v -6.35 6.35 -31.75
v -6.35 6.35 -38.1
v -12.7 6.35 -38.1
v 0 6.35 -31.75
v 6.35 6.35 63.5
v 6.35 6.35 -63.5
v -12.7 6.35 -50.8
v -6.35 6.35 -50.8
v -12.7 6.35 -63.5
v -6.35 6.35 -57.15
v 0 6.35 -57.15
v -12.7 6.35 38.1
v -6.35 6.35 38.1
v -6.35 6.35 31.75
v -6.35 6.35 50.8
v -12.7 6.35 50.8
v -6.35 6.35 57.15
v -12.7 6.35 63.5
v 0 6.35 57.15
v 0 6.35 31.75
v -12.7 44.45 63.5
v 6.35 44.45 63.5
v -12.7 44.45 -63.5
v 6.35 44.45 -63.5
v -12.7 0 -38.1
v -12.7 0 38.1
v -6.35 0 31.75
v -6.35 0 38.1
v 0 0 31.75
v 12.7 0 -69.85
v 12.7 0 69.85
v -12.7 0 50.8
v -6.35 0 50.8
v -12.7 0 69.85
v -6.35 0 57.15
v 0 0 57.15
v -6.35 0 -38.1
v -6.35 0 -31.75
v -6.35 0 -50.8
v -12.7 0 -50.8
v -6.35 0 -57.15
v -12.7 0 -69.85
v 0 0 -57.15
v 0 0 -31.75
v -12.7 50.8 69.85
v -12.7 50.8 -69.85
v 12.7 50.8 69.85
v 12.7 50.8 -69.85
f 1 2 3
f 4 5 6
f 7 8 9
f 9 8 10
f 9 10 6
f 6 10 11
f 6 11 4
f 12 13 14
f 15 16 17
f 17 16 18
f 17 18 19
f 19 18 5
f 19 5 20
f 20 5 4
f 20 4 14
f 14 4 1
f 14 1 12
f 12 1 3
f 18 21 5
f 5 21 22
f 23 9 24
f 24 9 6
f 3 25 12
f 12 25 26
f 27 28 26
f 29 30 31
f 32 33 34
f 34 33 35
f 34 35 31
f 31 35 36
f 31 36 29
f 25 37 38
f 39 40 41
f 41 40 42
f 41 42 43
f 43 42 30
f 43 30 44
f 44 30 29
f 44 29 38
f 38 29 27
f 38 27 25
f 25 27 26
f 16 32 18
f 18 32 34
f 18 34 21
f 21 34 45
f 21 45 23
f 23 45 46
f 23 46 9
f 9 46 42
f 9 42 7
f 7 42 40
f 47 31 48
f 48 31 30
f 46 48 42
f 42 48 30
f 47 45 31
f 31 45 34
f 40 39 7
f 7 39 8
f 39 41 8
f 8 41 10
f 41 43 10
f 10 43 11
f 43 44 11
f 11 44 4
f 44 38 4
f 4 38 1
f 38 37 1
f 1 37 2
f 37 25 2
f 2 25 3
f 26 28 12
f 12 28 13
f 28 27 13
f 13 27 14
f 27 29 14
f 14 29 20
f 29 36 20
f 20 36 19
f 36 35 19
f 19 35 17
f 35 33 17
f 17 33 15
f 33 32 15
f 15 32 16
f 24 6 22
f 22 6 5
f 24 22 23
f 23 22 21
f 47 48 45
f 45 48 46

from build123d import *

# Parameters (mm, degrees)
SKETCH1_W           = 25.4
SKETCH1_H           = 139.7
BOSS_EXTRUDE1_DEPTH = 6.35
SKETCH3_W           = 25.4
SKETCH3_H           = 6.35
BOSS_EXTRUDE2_DEPTH = 38.1
BOSS_EXTRUDE3_DEPTH = 6.35
CUT_EXTRUDE2_DEPTH  = 84.521209881
SKETCH8_W           = 12.7
SKETCH8_H           = 139.7
CUT_EXTRUDE3_DEPTH  = 84.521209881
SKETCH9_W           = 6.35
SKETCH9_H           = 127
BOSS_EXTRUDE4_DEPTH = 38.1
SKETCH10_W          = 25.4
SKETCH10_H          = 139.7
BOSS_EXTRUDE5_DEPTH = 6.35


with BuildPart() as part:
    # Sketch1 → Boss-Extrude1 (new body)
    with BuildSketch(Plane(origin=(0, 0, 0), x_dir=(1, 0, 0), z_dir=(0, 1, 0))):
        Rectangle(SKETCH1_W, SKETCH1_H)
    extrude(amount=BOSS_EXTRUDE1_DEPTH)

    # Sketch3 → Boss-Extrude2 (add)
    with BuildSketch(Plane(origin=(0, 6.35, 0), x_dir=(1, 0, 0), z_dir=(0, 1, 0))):
        with Locations((0, 66.675)):
            Rectangle(SKETCH3_W, SKETCH3_H)
        with Locations((0, -66.675)):
            Rectangle(SKETCH3_W, SKETCH3_H)
    extrude(amount=BOSS_EXTRUDE2_DEPTH)

    # Sketch6 → Boss-Extrude3 (add)
    with BuildSketch(Plane(origin=(0, 6.35, 0), x_dir=(1, 0, 0), z_dir=(0, 1, 0))):
        Polygon((12.7, 50.8), (19.05, 50.8), (19.05, 57.15), (25.4, 57.15), (25.4, 31.75), (19.05, 31.75), (19.05, 38.1), (12.7, 38.1), align=None)
    boss_extrude3 = extrude(amount=-BOSS_EXTRUDE3_DEPTH)

    # Sketch7 → Cut-Extrude2 (cut, through all)
    with BuildSketch(Plane(origin=(0, 6.35, 0), x_dir=(1, 0, 0), z_dir=(0, 1, 0))):
        Polygon((-12.7, 50.8), (-6.35, 50.8), (-6.35, 57.15), (0, 57.15), (0, 31.75), (-6.35, 31.75), (-6.35, 38.1), (-12.7, 38.1), align=None)
    cut_extrude2 = extrude(amount=-CUT_EXTRUDE2_DEPTH, mode=Mode.SUBTRACT)

    # Mirror1: Boss-Extrude3, Cut-Extrude2 across plane
    add(boss_extrude3.mirror(Plane.XY))
    add(cut_extrude2.mirror(Plane.XY), mode=Mode.SUBTRACT)

    # Sketch8 → Cut-Extrude3 (cut, through all)
    with BuildSketch(Plane(origin=(0, 6.35, 0), x_dir=(1, 0, 0), z_dir=(0, 1, 0))):
        with Locations((19.05, 0)):
            Rectangle(SKETCH8_W, SKETCH8_H)
    extrude(amount=-CUT_EXTRUDE3_DEPTH, mode=Mode.SUBTRACT)

    # Sketch9 → Boss-Extrude4 (add)
    with BuildSketch(Plane(origin=(0, 6.35, 0), x_dir=(1, 0, 0), z_dir=(0, 1, 0))):
        with Locations((9.525, 0)):
            Rectangle(SKETCH9_W, SKETCH9_H)
    extrude(amount=BOSS_EXTRUDE4_DEPTH)

    # Sketch10 → Boss-Extrude5 (add)
    with BuildSketch(Plane(origin=(0, 44.45, 0), x_dir=(1, 0, 0), z_dir=(0, 1, 0))):
        Rectangle(SKETCH10_W, SKETCH10_H)
    extrude(amount=BOSS_EXTRUDE5_DEPTH)


solid = part.part
